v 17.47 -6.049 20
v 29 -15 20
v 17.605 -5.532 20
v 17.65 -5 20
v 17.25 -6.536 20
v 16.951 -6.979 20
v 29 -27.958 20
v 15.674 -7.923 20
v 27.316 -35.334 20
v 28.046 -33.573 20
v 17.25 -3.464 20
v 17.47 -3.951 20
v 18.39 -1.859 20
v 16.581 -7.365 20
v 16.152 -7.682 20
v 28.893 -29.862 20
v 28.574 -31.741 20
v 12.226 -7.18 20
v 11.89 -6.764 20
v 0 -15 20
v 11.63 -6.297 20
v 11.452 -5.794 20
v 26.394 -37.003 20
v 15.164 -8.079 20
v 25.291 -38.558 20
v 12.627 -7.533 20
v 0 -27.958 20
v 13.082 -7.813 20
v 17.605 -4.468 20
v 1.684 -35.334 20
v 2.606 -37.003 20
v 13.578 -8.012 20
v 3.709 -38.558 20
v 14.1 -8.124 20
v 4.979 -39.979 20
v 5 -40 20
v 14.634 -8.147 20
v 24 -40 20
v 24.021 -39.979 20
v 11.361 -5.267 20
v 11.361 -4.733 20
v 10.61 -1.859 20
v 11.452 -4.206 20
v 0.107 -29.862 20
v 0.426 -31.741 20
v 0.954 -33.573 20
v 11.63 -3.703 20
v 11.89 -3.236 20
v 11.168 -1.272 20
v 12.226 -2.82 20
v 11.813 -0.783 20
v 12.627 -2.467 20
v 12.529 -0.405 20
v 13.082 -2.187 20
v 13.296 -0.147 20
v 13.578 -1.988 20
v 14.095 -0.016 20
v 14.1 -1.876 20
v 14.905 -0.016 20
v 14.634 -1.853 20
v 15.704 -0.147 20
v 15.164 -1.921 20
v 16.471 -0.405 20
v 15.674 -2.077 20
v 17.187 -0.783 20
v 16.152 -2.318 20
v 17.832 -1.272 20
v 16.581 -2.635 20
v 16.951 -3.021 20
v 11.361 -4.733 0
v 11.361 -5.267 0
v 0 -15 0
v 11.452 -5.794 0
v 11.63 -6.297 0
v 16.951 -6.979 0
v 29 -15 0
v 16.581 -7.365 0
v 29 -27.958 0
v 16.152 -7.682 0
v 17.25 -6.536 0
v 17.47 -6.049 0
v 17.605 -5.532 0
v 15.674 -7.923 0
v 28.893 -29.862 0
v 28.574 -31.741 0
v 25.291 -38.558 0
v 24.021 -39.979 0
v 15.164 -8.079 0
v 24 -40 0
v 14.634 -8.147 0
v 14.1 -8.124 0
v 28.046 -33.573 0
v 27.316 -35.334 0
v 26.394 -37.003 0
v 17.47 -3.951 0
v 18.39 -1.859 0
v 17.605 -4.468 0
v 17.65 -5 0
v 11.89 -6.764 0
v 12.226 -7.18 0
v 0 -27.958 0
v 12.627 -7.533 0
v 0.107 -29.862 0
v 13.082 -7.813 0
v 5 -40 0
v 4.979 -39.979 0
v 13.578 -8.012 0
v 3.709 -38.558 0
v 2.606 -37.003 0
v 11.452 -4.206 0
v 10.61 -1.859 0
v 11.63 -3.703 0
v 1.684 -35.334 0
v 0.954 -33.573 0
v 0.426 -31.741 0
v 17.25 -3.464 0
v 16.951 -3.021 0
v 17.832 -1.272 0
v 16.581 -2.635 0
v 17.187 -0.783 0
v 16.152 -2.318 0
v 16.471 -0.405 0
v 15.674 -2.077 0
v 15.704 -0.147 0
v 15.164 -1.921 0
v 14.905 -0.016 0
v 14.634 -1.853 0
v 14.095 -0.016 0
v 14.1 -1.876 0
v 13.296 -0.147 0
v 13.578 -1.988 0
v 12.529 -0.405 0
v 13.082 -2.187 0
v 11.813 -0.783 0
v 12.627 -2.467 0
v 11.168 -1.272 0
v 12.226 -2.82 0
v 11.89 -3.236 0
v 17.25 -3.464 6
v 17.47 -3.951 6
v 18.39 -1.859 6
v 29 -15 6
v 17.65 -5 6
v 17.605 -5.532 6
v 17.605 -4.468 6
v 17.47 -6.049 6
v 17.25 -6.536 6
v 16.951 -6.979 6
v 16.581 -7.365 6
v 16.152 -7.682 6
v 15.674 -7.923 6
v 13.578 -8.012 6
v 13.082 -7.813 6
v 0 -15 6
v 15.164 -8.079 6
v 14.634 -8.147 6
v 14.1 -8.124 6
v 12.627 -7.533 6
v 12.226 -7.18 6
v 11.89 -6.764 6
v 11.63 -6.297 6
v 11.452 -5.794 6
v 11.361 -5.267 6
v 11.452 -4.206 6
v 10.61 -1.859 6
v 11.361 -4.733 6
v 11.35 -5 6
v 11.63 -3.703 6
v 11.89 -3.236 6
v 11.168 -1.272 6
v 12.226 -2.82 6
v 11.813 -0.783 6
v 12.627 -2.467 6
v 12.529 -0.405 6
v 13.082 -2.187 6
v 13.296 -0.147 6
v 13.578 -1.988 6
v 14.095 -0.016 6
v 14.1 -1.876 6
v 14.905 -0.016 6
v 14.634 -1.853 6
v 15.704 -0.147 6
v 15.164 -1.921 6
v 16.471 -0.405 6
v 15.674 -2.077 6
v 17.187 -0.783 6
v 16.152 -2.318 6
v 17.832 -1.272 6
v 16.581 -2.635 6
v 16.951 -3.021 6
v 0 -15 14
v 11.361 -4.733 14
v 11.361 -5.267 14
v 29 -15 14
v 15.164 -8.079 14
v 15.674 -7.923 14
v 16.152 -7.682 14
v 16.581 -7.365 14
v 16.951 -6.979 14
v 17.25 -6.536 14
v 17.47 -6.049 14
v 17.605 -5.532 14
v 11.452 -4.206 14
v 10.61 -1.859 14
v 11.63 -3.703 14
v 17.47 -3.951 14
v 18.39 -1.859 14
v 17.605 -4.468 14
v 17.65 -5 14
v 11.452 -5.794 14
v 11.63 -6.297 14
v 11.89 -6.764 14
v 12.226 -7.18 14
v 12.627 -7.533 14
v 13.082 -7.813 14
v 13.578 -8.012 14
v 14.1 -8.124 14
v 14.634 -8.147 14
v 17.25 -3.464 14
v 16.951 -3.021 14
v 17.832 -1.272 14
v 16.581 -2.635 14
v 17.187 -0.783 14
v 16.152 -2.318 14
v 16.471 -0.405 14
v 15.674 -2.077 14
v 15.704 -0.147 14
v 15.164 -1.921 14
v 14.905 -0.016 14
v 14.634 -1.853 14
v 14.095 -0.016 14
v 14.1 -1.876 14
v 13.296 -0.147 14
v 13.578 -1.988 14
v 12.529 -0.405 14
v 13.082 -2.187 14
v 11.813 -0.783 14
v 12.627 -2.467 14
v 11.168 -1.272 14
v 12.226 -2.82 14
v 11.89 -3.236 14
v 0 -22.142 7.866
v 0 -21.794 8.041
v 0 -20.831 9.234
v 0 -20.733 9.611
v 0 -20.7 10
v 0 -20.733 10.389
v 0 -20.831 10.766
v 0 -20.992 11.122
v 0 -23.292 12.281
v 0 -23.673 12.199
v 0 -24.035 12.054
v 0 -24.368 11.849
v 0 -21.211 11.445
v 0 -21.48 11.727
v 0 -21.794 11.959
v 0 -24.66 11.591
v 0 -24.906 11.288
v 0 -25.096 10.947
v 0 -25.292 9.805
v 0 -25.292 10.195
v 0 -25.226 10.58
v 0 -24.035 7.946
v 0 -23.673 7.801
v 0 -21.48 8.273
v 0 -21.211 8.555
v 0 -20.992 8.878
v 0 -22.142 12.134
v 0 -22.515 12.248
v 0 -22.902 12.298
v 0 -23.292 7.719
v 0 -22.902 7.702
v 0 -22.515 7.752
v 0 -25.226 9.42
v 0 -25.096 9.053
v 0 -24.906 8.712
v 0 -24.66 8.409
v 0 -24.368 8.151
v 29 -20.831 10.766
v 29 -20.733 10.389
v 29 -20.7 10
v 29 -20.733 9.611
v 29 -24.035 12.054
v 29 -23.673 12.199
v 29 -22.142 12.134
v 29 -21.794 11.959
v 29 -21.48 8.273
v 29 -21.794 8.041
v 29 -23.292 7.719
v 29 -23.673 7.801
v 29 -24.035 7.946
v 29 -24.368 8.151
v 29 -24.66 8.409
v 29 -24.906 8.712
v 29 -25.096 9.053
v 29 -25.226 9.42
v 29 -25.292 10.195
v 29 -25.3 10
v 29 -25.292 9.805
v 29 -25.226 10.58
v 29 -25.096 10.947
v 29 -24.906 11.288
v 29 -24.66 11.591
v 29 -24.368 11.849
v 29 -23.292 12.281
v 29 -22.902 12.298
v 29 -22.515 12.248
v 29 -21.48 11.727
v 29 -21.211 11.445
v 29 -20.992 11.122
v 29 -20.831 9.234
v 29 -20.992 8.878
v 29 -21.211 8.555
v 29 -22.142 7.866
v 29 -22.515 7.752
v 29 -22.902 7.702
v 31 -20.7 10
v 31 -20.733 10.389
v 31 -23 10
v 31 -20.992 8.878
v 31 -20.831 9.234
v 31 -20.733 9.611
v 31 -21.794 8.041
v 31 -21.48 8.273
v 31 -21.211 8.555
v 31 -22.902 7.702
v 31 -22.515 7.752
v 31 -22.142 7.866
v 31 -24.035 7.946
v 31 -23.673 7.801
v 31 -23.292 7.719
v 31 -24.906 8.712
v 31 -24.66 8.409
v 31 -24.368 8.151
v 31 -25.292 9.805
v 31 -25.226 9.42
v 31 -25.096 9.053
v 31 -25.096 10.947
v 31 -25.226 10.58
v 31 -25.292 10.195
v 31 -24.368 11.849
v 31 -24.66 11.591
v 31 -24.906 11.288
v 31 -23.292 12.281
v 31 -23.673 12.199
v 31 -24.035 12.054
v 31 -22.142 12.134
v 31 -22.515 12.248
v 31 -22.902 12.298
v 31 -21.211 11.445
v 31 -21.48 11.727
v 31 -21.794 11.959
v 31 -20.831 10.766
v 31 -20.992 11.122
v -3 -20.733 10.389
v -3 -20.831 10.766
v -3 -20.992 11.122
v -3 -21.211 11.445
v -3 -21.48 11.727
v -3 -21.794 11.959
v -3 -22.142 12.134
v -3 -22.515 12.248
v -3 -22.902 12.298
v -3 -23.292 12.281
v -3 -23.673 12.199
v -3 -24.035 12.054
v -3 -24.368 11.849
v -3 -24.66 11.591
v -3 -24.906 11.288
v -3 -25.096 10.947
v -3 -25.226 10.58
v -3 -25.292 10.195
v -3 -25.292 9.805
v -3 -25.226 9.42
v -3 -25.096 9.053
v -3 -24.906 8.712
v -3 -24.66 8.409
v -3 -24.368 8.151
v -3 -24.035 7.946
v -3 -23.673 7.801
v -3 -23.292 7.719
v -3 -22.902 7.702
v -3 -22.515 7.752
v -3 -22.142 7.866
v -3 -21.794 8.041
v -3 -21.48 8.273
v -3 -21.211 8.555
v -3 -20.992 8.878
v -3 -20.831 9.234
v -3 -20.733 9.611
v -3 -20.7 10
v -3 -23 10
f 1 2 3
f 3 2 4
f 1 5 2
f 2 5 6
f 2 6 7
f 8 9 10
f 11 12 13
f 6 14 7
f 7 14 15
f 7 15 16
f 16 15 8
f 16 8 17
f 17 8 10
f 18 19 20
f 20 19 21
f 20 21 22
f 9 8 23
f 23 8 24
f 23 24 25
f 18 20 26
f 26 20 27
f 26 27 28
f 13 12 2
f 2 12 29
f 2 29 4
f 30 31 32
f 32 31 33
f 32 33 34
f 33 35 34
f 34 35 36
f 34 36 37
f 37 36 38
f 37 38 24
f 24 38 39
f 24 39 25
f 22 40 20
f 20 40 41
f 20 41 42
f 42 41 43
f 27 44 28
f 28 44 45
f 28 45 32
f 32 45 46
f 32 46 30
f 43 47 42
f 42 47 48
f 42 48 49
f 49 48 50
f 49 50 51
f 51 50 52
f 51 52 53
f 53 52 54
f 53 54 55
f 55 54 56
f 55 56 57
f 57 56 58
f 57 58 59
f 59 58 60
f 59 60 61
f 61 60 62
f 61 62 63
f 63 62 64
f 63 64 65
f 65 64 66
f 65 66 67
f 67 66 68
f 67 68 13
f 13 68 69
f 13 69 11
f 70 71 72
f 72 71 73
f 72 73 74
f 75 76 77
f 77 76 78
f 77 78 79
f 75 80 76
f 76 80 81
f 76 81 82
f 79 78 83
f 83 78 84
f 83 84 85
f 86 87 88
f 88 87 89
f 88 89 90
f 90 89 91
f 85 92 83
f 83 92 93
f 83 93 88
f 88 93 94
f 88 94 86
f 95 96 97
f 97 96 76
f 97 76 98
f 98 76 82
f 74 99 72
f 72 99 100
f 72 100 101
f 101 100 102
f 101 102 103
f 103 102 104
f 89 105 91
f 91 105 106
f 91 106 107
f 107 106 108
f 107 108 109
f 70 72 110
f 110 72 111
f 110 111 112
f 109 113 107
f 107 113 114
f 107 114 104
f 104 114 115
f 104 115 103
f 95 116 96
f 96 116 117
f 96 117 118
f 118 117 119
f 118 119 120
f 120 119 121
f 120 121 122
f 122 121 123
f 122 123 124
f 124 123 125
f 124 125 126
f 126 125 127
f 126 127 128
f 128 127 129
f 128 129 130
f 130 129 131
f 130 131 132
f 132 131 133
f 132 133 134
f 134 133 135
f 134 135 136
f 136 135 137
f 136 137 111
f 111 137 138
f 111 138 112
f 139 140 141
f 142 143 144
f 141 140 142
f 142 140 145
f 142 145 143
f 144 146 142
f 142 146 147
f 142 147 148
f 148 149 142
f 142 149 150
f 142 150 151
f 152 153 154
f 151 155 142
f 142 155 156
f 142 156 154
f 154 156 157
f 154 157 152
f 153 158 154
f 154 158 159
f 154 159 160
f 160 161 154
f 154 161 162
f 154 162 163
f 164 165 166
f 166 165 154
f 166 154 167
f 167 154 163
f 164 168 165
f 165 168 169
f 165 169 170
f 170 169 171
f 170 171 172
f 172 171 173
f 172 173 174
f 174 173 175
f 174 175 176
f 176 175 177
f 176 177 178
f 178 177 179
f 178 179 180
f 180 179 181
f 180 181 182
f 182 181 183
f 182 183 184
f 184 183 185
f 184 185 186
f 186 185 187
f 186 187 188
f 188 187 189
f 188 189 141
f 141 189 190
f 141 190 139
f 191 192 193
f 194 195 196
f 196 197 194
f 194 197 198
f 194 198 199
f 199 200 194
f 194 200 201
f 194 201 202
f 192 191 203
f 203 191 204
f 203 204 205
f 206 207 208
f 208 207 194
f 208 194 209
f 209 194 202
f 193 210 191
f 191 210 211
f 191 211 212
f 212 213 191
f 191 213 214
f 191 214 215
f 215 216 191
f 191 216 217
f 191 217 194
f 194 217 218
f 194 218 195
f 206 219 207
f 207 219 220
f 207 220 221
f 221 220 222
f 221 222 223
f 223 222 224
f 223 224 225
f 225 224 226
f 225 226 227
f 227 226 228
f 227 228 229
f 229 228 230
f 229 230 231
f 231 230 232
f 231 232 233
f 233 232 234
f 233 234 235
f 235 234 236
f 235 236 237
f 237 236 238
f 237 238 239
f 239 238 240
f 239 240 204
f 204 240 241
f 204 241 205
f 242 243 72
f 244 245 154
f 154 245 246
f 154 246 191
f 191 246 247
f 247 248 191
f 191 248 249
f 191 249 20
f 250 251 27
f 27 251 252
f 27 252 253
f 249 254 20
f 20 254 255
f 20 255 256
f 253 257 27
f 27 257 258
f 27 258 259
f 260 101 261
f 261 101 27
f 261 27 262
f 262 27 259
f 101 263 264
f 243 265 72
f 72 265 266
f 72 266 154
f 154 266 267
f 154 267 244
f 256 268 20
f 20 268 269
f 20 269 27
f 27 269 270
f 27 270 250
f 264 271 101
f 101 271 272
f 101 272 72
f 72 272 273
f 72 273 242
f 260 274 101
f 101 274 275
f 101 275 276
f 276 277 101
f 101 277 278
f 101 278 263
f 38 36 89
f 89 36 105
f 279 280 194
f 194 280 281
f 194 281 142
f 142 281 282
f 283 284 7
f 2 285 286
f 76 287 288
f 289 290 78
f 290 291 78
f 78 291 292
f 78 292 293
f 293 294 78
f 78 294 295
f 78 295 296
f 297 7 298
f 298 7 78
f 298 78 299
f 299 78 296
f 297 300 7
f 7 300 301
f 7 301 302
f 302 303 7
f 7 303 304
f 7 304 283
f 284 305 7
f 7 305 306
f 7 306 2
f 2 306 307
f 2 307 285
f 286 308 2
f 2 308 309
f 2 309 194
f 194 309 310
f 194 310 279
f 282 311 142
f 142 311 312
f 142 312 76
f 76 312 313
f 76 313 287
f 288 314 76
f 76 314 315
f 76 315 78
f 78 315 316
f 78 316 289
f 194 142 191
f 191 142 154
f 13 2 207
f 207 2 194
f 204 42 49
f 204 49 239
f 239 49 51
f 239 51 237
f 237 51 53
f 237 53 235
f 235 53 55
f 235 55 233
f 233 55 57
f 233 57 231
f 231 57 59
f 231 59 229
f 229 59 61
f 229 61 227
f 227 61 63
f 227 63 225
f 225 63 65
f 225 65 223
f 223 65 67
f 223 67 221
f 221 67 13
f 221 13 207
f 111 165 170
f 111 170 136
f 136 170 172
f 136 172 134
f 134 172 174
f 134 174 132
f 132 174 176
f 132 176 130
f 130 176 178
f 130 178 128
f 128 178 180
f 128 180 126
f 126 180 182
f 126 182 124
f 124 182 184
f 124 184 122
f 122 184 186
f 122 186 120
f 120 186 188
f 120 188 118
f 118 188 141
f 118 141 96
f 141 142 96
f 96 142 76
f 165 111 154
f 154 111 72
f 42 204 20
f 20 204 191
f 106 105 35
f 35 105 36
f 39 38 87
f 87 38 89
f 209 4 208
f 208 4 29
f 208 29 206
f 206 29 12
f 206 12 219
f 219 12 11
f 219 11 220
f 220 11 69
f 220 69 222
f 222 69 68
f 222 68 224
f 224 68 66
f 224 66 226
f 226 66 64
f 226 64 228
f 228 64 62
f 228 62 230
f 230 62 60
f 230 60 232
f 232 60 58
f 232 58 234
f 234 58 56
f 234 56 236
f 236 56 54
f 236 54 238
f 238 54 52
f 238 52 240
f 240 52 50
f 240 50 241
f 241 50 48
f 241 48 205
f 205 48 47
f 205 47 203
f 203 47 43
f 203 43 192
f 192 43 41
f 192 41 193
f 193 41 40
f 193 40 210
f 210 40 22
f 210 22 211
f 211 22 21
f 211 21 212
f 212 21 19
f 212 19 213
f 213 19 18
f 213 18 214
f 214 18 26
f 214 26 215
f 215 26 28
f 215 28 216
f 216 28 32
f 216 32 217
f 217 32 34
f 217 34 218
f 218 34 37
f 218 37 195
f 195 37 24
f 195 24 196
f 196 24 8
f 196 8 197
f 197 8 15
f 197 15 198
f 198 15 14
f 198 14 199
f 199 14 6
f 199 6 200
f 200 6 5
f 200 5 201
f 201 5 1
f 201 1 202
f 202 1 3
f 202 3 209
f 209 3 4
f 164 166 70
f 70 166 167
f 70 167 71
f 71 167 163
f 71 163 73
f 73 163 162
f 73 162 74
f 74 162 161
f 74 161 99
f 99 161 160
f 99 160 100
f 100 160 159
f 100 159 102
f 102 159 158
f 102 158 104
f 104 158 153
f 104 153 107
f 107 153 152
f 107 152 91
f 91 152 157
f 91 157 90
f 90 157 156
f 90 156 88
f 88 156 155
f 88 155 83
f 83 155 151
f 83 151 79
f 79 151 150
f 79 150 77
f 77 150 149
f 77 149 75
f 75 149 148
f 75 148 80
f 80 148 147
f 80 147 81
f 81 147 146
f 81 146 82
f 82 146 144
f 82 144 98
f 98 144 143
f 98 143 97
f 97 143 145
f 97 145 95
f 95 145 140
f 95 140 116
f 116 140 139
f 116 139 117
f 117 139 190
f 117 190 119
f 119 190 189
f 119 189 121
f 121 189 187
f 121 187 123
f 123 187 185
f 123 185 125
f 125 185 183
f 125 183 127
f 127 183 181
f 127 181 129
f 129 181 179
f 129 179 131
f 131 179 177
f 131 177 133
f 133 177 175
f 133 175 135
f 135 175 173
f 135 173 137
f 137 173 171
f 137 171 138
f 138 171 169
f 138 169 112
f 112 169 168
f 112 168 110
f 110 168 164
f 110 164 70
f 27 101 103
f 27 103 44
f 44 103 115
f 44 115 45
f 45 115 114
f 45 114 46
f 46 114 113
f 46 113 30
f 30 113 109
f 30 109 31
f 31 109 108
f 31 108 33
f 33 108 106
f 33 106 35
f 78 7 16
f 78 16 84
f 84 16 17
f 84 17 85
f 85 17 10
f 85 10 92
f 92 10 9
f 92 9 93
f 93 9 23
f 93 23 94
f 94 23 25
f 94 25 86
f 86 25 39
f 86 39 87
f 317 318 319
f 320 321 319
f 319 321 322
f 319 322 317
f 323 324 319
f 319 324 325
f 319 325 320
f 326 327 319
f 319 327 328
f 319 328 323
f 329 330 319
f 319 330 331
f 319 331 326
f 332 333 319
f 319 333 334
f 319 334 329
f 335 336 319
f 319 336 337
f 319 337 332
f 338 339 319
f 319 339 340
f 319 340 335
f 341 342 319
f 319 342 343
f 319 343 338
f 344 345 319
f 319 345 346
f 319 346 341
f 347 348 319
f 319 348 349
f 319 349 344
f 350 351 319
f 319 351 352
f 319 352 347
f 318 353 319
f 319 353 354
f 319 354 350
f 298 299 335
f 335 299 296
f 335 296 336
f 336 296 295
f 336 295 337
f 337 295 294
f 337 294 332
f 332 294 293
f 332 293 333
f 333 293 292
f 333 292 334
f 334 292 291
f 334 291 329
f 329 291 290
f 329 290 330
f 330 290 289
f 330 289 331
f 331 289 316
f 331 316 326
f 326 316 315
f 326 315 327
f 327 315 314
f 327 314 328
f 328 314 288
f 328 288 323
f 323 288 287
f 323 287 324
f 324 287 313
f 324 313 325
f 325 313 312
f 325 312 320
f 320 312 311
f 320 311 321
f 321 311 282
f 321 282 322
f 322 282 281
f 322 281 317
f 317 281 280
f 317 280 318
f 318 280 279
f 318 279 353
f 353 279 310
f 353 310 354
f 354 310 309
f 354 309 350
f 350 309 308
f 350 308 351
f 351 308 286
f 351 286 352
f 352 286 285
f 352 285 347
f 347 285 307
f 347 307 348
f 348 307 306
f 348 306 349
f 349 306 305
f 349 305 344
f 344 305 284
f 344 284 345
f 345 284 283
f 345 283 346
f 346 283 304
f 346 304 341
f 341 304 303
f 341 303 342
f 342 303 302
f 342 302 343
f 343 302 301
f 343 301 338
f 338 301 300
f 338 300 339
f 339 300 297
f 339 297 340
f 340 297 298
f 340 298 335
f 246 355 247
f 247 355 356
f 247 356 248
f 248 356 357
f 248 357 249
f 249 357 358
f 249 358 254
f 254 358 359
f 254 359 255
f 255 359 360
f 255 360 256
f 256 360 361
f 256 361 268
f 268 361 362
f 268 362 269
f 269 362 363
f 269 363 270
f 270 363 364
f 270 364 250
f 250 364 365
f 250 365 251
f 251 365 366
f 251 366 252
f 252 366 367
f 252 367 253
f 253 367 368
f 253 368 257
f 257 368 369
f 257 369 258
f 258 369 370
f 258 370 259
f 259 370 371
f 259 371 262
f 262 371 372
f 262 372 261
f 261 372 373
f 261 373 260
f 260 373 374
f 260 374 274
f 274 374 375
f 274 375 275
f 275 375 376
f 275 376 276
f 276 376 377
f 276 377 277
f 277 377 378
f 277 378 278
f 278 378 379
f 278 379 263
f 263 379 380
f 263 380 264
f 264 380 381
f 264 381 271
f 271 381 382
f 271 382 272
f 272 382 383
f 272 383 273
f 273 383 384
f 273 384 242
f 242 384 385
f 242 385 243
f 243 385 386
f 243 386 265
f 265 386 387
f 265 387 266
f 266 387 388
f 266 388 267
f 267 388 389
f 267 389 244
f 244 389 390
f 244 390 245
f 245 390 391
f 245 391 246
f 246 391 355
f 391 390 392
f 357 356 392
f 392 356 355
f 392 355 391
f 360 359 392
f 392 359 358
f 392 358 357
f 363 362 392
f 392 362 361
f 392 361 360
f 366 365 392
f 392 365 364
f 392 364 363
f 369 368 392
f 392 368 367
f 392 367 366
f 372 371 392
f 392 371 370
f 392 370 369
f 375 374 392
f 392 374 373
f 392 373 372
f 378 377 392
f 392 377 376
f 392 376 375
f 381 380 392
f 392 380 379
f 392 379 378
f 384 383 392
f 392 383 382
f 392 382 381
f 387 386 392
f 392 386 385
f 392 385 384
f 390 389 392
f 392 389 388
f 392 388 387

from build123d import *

# Parameters (mm, degrees)
SKETCH1_W                = 29
SKETCH1_H                = 40
BOSS_EXTRUDE1_DEPTH      = 20
SKETCH2_W                = 29
SKETCH2_H                = 8
CUT_EXTRUDE1_DEPTH       = 15
SKETCH3_R                = 3.15
CUT_EXTRUDE2_DEPTH       = 30
FILLET1_R                = 17
BOSS_EXTRUDE2_DEPTH      = 2
BOSS_EXTRUDE2_DEPTH_BACK = 32
SKETCH4_R                = 2.3


with BuildPart() as part:
    # Sketch1 → Boss-Extrude1 (new body)
    with BuildSketch(Plane.XY):
        with Locations((14.5, -20)):
            Rectangle(SKETCH1_W, SKETCH1_H)
    extrude(amount=BOSS_EXTRUDE1_DEPTH)

    # Sketch2 → Cut-Extrude1 (cut)
    with BuildSketch(Plane(origin=(0, 0, 0), x_dir=(1, 0, 0), z_dir=(0, 1, 0))):
        with Locations((14.5, -10)):
            Rectangle(SKETCH2_W, SKETCH2_H)
    extrude(amount=-CUT_EXTRUDE1_DEPTH, mode=Mode.SUBTRACT)

    # Sketch3 → Cut-Extrude2 (cut)
    with BuildSketch(Plane.XY.offset(20)):
        with BuildLine():
            Line((0, 0), (0, -15))
            Line((0, -15), (10.60969448, -1.859056995))
            ThreePointArc((10.60969448, -1.859056995), (12.344160839, -0.488641279), (14.5, 0))
            Line((14.5, 0), (0, 0))
        make_face()
        with BuildLine():
            Line((29, 0), (14.5, 0))
            ThreePointArc((14.5, 0), (16.655839161, -0.488641279), (18.39030552, -1.859056995))
            Line((18.39030552, -1.859056995), (29, -15))
            Line((29, -15), (29, 0))
        make_face()
        Polygon((5, -40), (0, -35), (0, -40), align=None)
        Polygon((29, -35), (24, -40), (29, -40), align=None)
        with Locations((14.5, -5)):
            Circle(SKETCH3_R)
    extrude(amount=-CUT_EXTRUDE2_DEPTH, mode=Mode.SUBTRACT)

    # Fillet1
    fillet1_edges = [part.edges().sort_by_distance(p)[0] for p in [
        (29, -35, 10),
        (0, -35, 10),
    ]]
    fillet(fillet1_edges, radius=FILLET1_R)

    # Sketch4 → Boss-Extrude2 (add, two sides: drawn at the far end of the back side and taken through both)
    with BuildSketch(Plane(origin=(29, 0, 0), x_dir=(0, 0, -1), z_dir=(1, 0, 0)).offset(-BOSS_EXTRUDE2_DEPTH_BACK)):
        with Locations(Location((-10, -23, 0), (0, 0, 90))):
            Circle(SKETCH4_R)
    extrude(amount=BOSS_EXTRUDE2_DEPTH + BOSS_EXTRUDE2_DEPTH_BACK)


solid = part.part
